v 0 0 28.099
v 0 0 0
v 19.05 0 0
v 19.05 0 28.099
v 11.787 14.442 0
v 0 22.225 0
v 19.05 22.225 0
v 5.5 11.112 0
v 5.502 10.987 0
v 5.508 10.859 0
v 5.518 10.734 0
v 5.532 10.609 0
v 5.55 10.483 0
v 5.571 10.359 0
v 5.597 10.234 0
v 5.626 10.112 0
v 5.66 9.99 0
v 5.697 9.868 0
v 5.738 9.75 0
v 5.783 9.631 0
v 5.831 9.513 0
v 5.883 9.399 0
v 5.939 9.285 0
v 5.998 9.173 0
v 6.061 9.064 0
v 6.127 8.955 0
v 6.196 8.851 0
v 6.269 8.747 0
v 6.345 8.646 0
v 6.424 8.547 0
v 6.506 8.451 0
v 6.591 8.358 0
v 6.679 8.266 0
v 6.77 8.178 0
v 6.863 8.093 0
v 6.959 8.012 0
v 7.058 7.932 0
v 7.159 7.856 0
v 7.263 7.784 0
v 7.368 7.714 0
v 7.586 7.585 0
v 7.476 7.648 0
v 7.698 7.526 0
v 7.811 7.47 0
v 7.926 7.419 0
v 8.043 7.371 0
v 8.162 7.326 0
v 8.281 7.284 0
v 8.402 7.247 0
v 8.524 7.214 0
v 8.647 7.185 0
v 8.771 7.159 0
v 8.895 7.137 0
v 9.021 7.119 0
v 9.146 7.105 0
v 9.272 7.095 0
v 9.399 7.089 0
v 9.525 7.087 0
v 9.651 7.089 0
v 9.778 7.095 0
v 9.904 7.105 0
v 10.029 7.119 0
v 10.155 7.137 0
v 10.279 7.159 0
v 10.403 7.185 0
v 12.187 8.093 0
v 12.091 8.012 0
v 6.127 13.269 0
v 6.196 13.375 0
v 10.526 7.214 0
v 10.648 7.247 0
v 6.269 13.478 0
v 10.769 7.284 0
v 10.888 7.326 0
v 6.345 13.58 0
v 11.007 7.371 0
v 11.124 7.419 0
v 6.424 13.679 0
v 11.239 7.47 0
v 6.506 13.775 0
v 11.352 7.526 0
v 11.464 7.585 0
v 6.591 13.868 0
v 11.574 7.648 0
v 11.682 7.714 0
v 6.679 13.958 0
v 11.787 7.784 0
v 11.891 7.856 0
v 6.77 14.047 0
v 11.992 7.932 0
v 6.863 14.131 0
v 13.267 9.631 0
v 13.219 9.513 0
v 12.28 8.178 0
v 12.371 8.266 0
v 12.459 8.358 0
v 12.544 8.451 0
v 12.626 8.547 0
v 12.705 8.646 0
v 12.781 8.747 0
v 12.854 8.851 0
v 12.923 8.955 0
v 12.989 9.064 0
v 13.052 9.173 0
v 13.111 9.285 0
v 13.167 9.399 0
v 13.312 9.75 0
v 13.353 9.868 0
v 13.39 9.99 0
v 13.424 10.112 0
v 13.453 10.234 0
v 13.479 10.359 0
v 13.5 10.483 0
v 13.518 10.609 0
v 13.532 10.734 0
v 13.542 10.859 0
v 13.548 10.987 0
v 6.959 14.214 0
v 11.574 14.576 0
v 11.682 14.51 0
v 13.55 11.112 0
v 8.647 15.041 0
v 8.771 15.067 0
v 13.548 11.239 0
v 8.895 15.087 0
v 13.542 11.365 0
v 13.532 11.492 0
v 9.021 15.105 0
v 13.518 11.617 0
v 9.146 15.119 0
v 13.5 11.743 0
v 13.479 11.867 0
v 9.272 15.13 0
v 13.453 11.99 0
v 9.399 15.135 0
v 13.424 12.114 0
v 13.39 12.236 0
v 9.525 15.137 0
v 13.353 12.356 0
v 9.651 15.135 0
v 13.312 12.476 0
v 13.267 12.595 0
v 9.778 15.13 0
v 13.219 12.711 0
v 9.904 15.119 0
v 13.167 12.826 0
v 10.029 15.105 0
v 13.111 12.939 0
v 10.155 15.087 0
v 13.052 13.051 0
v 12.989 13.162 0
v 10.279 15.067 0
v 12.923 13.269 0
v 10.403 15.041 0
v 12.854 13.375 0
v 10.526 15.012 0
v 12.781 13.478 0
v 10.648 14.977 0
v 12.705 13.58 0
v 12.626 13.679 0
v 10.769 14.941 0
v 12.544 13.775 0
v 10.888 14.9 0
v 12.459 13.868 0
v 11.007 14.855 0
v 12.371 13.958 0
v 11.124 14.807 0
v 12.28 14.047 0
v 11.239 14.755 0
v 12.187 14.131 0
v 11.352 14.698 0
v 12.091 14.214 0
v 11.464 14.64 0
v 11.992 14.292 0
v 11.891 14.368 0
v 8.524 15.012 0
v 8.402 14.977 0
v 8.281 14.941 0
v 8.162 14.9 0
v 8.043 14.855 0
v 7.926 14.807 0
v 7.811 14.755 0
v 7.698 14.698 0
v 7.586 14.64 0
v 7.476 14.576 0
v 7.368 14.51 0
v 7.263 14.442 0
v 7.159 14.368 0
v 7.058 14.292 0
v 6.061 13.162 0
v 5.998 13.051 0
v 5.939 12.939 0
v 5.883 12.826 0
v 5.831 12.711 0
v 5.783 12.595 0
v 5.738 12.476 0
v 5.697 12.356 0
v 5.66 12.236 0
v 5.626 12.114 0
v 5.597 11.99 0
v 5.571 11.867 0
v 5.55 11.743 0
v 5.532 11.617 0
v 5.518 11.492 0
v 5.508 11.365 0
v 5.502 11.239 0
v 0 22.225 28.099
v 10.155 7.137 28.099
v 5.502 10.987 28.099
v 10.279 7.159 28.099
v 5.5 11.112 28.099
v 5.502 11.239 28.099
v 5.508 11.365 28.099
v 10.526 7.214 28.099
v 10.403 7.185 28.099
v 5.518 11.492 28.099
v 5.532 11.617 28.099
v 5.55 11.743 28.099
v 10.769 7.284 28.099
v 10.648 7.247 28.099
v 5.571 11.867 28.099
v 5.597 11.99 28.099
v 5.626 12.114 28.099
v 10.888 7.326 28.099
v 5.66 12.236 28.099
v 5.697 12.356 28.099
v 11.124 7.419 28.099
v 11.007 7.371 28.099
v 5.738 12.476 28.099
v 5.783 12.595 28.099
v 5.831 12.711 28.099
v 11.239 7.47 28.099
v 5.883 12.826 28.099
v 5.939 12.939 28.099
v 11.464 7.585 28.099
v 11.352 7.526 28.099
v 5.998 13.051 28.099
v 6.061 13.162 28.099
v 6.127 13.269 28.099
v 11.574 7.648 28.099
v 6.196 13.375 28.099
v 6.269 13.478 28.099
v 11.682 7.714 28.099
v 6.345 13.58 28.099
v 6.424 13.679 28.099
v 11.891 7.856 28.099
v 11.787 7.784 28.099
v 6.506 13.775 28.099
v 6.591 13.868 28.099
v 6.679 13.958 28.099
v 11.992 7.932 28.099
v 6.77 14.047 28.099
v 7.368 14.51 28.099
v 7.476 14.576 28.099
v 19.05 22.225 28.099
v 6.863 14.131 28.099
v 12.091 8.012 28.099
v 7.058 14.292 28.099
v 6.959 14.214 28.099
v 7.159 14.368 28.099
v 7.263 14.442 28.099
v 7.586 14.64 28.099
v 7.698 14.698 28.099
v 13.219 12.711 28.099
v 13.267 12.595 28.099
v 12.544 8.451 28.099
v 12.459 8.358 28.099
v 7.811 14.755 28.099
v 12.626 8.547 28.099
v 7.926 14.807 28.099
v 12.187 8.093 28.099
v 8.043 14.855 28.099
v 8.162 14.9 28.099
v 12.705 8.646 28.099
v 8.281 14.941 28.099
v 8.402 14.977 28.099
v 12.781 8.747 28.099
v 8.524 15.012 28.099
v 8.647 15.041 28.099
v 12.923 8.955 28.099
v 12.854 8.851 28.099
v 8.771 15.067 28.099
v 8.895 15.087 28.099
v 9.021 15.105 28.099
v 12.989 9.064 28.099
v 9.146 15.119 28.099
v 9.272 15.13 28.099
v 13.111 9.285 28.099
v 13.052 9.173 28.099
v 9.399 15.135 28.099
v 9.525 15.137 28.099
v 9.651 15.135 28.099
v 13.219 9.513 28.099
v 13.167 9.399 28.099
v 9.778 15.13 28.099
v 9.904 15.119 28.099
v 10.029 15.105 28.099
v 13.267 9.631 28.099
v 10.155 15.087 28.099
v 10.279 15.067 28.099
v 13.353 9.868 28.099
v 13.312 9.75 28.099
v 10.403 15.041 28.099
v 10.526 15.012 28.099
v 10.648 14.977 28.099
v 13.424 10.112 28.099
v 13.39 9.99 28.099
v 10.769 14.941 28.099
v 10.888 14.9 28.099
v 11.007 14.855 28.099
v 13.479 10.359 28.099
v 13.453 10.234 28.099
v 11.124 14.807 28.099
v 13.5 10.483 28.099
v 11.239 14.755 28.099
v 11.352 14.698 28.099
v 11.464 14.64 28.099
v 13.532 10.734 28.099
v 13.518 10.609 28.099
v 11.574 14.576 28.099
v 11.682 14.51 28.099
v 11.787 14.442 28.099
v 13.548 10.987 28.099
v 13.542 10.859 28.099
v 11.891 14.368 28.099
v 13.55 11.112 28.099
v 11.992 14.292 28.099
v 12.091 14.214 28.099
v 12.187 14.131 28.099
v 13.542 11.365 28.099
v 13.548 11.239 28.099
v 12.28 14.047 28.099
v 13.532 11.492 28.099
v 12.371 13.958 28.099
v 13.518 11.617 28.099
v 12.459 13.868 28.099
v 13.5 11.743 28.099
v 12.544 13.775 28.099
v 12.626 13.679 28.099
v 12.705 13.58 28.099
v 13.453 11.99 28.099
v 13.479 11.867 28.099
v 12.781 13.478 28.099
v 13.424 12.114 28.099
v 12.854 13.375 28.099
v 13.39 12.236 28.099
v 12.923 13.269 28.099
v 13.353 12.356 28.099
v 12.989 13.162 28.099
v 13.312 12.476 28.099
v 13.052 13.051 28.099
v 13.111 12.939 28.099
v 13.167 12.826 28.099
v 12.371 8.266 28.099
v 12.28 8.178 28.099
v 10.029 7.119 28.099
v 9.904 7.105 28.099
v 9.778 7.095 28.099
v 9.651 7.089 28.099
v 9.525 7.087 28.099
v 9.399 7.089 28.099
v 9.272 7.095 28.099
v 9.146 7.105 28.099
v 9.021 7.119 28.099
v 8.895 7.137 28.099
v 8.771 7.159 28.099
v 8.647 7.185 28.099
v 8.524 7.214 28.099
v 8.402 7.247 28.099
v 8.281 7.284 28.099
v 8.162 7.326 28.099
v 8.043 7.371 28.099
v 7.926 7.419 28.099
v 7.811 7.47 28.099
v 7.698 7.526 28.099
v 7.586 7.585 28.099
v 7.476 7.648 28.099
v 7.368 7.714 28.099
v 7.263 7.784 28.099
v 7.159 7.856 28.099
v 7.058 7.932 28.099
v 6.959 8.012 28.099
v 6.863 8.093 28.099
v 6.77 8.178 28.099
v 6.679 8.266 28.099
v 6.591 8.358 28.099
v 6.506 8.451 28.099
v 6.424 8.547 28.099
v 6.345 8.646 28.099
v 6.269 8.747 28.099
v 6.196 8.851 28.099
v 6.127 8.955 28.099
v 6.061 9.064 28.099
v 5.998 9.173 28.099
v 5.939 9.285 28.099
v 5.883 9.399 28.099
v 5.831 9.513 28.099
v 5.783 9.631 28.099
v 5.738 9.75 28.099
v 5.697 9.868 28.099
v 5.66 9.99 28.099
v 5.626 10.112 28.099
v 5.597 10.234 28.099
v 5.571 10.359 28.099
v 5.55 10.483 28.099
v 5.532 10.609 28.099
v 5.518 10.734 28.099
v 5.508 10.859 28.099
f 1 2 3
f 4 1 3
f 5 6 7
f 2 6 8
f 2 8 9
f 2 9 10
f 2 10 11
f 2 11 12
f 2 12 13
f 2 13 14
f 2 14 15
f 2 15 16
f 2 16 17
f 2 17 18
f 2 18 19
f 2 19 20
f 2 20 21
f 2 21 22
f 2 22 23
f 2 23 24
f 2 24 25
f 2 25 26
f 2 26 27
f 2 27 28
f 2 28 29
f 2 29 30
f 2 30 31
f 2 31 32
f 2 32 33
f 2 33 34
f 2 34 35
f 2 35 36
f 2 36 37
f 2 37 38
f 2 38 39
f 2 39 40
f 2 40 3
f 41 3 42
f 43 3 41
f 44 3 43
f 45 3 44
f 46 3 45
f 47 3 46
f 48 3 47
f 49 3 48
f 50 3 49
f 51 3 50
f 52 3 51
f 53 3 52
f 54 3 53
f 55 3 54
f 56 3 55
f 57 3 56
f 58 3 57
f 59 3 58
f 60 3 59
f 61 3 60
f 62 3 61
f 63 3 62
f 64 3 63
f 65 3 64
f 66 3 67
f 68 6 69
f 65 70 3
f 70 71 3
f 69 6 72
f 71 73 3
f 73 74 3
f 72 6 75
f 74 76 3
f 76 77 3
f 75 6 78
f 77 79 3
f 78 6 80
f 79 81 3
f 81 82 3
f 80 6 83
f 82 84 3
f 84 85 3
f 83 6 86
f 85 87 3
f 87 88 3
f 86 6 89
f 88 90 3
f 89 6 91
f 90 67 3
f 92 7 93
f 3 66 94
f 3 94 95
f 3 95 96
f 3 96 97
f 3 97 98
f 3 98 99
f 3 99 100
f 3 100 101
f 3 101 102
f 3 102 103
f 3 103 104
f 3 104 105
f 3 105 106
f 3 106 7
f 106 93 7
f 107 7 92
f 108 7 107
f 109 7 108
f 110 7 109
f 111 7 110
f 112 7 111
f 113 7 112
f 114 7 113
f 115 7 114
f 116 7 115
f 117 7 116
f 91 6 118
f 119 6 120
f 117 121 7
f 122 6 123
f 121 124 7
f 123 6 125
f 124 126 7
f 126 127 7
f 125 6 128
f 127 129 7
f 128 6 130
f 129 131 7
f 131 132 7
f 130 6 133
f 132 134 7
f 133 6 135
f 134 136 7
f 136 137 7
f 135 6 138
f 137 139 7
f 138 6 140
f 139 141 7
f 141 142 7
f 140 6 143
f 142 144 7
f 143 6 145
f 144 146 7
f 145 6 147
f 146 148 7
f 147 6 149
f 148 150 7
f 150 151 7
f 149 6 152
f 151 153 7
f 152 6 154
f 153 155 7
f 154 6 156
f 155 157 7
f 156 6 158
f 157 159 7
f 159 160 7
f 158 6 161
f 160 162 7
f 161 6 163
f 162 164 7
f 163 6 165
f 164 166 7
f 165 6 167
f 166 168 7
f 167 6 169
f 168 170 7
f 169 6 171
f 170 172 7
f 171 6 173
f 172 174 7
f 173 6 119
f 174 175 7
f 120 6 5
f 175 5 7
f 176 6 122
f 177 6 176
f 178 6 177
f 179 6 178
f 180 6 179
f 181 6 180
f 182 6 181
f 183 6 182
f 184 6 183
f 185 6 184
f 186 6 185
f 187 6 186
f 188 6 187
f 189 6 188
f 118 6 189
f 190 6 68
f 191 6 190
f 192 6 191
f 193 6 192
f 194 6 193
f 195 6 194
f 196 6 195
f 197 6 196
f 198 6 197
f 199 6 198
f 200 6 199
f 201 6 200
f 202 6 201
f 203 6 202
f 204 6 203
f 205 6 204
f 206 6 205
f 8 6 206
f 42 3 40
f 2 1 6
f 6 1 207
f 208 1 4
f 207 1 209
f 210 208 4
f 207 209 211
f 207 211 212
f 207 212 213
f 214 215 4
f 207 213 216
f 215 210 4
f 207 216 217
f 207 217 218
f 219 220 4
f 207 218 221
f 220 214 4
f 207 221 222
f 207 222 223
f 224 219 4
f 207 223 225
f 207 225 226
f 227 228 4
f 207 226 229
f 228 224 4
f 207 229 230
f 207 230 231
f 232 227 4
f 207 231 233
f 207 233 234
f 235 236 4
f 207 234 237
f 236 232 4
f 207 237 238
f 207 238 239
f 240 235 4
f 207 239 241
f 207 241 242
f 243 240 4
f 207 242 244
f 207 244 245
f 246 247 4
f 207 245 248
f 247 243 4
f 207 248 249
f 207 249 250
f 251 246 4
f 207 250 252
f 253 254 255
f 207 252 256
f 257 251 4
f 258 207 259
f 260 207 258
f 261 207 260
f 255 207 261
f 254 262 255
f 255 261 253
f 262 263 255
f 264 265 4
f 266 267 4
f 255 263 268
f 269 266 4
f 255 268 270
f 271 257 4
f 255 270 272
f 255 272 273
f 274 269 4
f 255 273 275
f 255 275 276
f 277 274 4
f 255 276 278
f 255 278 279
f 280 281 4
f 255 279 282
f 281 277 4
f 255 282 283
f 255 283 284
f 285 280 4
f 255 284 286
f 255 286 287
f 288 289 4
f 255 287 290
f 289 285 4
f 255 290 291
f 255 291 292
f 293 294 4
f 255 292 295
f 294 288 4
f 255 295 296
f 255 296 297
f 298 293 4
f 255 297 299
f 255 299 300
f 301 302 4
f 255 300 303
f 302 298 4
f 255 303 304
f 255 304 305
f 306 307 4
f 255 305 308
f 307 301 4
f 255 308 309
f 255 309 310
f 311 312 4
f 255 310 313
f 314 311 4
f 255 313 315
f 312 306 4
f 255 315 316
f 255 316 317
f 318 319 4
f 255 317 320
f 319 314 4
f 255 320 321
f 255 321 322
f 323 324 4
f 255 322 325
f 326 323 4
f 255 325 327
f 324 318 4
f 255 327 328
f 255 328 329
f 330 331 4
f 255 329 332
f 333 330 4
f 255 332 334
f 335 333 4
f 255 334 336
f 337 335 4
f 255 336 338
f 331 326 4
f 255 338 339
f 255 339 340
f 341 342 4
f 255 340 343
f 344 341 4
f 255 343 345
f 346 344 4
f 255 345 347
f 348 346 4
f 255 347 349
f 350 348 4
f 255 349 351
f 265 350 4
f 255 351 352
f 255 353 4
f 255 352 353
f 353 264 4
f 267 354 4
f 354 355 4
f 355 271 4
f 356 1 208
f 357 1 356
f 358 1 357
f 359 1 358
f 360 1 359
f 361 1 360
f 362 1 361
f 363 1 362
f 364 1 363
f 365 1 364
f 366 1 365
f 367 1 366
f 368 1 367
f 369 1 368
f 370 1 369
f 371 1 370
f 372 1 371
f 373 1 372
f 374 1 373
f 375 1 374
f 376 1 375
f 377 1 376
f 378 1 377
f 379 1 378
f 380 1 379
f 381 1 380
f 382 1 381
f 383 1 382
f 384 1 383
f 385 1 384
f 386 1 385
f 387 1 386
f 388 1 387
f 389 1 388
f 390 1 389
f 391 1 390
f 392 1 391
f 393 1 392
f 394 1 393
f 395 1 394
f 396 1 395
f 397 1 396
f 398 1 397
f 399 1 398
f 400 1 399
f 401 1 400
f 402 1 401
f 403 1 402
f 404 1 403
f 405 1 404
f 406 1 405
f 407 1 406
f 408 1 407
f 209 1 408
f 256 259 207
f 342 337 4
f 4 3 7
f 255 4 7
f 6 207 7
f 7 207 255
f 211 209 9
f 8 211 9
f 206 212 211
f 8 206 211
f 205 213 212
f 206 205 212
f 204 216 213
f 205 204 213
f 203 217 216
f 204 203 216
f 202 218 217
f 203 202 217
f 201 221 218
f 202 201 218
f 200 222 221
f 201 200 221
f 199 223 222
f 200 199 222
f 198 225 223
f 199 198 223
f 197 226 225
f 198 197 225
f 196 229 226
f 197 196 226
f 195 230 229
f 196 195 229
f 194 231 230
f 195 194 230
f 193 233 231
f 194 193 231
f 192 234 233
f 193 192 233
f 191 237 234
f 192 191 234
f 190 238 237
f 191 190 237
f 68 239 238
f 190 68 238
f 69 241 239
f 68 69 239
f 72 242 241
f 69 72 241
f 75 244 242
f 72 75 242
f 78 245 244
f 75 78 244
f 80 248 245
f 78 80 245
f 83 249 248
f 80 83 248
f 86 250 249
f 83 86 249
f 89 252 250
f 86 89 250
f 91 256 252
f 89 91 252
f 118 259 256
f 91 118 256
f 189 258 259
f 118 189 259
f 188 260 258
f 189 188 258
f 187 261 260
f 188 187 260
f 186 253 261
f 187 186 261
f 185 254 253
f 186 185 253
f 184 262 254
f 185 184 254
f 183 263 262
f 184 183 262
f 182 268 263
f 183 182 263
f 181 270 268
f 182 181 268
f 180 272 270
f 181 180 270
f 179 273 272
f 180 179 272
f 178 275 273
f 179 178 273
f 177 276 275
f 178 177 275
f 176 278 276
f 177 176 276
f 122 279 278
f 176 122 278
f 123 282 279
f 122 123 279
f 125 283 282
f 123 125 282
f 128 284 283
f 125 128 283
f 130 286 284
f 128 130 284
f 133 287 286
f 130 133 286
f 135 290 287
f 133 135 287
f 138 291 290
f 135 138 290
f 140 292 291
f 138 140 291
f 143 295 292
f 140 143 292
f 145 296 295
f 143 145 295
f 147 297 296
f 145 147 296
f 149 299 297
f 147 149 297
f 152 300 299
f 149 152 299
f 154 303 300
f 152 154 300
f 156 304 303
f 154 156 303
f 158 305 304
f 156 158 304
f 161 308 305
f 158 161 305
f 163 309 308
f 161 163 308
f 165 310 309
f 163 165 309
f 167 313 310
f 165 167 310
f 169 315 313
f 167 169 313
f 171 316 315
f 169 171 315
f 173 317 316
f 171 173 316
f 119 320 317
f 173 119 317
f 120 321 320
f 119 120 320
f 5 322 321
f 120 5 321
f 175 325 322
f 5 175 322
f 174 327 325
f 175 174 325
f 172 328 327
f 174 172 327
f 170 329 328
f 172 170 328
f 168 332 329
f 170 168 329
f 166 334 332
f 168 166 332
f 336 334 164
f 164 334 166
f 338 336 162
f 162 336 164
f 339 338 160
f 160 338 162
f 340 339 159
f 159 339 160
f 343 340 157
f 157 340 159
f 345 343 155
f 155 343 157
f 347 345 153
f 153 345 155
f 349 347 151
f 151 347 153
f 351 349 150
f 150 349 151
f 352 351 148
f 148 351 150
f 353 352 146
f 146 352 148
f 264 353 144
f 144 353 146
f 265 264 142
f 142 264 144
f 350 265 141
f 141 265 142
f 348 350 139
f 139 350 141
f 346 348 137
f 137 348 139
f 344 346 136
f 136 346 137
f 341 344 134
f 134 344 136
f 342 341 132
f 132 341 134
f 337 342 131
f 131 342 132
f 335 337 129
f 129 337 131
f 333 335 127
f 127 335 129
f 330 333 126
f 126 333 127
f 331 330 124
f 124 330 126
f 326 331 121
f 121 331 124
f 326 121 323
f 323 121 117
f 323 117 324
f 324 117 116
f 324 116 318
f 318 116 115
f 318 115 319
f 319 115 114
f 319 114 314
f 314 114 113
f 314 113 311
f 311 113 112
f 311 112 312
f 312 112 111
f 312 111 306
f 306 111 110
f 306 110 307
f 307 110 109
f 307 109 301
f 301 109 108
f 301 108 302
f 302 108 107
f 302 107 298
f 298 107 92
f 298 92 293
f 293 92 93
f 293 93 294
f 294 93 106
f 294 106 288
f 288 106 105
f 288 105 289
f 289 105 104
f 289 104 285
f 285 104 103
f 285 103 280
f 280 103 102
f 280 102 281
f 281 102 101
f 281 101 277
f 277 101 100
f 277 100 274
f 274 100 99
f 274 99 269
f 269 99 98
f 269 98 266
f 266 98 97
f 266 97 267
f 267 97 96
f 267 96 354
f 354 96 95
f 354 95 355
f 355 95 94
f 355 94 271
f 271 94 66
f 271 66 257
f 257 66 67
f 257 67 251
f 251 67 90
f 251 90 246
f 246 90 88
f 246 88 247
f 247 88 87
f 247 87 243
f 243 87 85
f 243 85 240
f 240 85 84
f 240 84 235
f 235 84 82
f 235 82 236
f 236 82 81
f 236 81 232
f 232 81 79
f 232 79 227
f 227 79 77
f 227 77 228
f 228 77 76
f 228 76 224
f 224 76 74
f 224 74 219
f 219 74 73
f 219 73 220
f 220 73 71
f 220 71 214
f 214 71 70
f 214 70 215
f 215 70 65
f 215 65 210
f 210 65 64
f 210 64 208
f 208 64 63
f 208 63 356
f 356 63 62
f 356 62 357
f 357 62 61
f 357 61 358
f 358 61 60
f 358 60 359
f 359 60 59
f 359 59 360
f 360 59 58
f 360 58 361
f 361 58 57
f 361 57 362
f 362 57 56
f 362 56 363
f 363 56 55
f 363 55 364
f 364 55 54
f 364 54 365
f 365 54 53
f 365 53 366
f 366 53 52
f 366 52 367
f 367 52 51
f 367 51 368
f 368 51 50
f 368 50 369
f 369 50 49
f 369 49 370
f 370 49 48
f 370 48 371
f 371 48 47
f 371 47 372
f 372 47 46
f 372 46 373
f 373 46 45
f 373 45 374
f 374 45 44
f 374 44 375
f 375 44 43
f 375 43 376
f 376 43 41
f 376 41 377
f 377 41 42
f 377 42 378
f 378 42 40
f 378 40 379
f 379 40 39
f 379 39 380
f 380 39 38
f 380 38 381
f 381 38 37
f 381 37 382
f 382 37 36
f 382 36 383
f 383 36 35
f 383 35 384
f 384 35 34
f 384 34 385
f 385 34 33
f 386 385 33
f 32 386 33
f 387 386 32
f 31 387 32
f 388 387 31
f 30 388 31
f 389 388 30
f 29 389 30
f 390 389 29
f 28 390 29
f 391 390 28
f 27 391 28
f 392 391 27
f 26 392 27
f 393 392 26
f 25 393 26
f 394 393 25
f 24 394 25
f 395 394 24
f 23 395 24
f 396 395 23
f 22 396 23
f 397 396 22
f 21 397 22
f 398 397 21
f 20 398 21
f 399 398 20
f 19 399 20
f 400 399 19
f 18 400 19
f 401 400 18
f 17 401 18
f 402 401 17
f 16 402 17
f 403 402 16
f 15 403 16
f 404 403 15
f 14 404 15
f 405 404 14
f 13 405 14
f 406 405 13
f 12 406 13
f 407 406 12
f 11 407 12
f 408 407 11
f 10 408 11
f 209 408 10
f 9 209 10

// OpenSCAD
width = 19.05;
depth = 22.225;
height = 1.475 * 19.05;
bolt = 8.05;

#difference()
{
linear_extrude(height = height )
{
	polygon(points=[[0, 0],[width, 0],[width, depth], [0, depth]]);

}

linear_extrude(height = height)
{
	translate([width/2, depth/2,0])
	{
		circle($fn = 200, r = bolt/2);
	}
}
}
